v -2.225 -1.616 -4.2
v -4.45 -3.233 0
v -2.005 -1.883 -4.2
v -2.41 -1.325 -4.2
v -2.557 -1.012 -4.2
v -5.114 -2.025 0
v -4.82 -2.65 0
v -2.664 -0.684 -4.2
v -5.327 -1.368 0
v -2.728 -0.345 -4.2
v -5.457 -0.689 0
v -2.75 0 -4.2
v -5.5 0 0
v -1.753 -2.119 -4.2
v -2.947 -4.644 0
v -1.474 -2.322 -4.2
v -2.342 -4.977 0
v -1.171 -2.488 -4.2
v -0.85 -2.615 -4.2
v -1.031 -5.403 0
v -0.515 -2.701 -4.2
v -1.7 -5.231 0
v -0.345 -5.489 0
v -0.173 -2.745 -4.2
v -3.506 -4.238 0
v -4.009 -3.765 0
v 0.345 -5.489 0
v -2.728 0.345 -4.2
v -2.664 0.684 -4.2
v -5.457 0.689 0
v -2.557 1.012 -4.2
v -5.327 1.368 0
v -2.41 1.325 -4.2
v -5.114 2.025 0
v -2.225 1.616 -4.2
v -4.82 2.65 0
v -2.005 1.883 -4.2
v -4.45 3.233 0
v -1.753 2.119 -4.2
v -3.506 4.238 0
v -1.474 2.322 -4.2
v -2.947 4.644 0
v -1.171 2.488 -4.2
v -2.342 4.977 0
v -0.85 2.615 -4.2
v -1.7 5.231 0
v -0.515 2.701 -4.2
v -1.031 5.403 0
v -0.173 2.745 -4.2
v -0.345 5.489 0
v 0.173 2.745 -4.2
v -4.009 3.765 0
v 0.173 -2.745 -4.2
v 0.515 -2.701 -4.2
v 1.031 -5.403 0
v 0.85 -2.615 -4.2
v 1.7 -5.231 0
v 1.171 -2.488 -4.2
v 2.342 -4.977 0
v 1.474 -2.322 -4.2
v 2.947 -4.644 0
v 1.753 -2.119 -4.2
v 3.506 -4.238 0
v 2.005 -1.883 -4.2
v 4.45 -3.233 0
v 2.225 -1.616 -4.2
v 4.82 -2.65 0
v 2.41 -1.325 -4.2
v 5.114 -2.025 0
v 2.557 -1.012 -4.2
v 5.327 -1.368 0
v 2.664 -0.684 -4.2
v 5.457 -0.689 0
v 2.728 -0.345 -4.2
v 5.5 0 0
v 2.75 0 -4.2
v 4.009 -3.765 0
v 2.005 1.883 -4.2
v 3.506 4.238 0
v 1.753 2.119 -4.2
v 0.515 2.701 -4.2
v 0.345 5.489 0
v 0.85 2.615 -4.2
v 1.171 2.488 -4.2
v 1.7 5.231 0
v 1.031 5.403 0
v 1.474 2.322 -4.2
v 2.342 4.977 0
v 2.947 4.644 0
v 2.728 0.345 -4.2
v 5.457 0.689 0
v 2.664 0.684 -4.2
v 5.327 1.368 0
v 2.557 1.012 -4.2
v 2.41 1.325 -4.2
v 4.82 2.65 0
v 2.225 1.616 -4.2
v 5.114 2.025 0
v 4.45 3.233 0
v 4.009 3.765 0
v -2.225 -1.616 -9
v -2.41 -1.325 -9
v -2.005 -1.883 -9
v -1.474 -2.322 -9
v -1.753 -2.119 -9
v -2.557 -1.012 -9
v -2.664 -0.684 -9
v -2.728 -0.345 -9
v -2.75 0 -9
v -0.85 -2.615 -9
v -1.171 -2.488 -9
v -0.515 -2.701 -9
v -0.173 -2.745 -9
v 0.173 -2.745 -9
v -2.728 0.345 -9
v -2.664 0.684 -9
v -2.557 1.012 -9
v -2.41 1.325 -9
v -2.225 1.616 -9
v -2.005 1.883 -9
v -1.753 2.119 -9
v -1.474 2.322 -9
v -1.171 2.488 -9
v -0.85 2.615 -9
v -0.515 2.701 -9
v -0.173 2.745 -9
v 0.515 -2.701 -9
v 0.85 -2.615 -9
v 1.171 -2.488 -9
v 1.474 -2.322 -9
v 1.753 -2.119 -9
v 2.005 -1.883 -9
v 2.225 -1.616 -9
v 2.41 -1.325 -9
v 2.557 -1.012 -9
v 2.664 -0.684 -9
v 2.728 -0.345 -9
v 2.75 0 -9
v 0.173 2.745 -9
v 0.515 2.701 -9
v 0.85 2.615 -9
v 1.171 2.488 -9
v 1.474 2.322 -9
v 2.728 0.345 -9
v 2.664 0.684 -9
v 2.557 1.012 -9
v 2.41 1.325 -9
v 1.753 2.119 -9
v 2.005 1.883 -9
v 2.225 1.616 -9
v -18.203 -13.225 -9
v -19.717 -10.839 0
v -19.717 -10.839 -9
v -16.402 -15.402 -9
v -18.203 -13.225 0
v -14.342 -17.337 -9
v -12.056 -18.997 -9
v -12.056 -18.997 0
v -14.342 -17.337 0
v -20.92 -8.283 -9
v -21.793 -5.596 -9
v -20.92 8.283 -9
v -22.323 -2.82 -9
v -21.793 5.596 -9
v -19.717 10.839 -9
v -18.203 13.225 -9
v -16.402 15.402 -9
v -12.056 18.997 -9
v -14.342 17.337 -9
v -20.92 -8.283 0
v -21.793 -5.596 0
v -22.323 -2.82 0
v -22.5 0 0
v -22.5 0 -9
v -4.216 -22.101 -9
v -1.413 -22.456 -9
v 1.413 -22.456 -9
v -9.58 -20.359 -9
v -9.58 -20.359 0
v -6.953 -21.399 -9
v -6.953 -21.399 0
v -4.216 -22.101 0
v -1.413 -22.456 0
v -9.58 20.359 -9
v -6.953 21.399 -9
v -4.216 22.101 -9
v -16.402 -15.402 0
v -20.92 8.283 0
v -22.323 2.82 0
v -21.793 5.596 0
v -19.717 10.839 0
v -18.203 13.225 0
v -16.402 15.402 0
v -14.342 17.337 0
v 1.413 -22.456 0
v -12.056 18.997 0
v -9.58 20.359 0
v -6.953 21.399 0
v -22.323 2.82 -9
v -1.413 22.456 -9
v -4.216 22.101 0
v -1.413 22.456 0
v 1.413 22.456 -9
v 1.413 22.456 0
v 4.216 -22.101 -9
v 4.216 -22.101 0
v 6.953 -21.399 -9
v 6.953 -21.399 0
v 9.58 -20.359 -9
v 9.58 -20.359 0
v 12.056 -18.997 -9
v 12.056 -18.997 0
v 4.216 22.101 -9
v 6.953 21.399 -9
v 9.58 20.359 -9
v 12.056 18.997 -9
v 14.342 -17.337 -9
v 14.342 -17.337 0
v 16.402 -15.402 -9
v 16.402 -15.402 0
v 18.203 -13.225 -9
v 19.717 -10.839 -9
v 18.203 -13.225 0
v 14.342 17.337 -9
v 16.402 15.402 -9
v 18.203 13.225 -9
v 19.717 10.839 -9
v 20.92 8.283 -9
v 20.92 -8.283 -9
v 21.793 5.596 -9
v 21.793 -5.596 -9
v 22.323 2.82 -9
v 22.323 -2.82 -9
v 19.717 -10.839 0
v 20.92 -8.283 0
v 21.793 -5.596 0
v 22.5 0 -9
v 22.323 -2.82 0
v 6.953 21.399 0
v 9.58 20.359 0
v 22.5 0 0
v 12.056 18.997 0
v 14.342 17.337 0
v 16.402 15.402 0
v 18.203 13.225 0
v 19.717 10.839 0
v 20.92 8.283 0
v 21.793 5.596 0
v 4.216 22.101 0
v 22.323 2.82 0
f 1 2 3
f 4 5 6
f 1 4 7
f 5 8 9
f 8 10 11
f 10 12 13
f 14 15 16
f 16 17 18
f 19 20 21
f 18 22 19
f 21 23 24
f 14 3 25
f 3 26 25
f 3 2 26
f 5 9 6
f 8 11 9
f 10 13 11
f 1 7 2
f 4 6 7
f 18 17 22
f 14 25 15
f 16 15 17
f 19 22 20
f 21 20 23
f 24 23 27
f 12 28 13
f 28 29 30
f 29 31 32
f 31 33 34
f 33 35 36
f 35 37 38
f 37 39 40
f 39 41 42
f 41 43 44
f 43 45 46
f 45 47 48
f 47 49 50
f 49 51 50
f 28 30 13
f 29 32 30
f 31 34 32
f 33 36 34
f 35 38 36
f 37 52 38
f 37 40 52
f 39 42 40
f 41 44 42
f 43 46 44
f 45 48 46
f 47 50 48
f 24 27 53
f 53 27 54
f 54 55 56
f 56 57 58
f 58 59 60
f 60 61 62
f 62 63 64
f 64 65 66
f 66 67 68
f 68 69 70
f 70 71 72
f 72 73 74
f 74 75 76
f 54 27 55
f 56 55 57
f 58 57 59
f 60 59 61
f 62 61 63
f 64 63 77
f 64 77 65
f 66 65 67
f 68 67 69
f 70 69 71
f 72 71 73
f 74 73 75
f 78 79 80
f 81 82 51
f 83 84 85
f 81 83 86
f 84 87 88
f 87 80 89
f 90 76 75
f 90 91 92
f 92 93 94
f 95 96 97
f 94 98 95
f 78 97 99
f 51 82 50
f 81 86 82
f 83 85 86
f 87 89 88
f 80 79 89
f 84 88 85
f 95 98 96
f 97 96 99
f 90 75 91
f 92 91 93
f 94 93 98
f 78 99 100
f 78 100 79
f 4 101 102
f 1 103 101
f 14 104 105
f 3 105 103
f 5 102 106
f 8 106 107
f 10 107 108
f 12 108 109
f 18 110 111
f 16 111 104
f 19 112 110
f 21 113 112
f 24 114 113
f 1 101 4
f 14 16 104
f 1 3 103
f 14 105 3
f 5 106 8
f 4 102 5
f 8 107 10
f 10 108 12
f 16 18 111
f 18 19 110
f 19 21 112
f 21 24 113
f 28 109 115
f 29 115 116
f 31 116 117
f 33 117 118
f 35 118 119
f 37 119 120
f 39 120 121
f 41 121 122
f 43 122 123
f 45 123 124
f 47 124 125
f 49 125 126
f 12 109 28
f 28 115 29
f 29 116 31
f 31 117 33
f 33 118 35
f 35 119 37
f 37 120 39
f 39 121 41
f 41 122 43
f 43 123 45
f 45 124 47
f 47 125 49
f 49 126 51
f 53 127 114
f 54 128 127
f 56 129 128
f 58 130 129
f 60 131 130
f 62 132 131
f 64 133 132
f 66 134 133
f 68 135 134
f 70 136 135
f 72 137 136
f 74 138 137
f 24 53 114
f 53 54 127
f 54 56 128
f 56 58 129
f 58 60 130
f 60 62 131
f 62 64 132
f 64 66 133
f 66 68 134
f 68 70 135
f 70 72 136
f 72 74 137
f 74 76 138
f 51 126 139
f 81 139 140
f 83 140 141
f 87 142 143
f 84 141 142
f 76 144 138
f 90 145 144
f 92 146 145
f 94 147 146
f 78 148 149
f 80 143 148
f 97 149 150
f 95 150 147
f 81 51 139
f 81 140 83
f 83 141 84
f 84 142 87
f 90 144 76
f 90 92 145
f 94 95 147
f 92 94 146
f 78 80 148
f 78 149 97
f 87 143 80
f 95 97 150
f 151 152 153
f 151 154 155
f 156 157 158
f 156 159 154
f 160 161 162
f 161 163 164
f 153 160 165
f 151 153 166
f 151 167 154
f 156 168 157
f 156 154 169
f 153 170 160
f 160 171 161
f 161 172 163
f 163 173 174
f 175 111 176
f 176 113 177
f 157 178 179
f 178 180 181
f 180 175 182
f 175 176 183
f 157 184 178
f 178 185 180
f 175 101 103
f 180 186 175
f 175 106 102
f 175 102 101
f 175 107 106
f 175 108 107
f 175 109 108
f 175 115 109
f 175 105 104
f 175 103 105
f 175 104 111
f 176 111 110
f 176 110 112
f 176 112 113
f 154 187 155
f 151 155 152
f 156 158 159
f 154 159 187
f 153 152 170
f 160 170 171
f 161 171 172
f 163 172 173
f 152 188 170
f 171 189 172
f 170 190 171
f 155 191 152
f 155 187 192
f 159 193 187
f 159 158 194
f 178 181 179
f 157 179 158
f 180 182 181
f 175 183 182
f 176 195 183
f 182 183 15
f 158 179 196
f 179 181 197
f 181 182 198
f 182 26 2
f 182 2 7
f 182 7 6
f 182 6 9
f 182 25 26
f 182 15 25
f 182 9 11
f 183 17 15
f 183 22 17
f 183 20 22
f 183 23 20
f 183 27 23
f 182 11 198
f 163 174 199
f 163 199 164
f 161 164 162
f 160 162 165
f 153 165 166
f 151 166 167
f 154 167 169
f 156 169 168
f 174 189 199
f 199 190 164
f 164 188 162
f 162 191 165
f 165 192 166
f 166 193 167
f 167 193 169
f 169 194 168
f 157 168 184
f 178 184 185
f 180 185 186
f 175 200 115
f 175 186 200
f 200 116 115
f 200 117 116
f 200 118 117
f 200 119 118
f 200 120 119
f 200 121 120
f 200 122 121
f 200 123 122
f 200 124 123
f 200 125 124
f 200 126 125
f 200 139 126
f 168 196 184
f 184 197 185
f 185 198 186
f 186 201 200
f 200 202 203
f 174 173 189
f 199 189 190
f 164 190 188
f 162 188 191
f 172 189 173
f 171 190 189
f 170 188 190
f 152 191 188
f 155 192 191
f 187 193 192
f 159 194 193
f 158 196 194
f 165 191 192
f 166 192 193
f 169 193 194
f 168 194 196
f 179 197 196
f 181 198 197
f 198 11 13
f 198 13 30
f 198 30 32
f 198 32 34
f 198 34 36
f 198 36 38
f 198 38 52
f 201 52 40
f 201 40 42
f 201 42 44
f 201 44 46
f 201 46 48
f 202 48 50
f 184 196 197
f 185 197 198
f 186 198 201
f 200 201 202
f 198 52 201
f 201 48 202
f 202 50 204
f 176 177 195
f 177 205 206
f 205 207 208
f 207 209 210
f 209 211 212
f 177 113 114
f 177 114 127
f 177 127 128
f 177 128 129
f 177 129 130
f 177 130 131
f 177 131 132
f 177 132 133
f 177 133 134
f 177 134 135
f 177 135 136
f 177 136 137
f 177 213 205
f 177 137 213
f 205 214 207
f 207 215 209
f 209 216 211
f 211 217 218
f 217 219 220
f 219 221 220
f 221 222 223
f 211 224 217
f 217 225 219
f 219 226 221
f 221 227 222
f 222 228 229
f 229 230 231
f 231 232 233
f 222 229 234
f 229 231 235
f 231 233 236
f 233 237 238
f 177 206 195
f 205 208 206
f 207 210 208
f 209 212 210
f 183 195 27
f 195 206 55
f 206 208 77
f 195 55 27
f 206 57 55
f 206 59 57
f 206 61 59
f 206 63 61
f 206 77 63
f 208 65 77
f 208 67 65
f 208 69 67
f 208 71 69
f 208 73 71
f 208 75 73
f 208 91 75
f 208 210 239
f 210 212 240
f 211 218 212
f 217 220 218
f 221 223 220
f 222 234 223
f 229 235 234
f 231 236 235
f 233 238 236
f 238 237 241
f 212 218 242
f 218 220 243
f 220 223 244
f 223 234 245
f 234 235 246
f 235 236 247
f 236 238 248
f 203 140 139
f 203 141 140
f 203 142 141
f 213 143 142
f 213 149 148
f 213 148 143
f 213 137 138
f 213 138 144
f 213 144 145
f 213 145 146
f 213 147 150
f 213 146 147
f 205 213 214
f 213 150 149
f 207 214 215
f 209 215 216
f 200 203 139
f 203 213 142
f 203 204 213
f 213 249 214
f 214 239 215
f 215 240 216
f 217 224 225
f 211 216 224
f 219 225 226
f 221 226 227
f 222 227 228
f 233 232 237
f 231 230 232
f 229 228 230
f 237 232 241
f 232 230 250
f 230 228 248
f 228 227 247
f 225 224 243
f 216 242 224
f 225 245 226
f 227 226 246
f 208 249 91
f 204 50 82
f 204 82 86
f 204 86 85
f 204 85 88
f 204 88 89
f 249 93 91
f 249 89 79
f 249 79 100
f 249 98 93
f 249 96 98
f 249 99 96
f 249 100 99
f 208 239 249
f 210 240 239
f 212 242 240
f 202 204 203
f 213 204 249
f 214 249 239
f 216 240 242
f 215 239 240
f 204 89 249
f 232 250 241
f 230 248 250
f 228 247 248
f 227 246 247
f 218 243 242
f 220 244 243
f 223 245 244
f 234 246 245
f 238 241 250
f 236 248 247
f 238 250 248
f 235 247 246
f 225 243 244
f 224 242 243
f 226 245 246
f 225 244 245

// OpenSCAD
$fn = 50;

difference() {
	union() {
		translate(v = [0, 0, -9.0]) {
			cylinder(h = 9, r = 22.5);
		}
	}
	union() {
		translate(v = [0, 0, 0]) {
			rotate(a = [0, 0, 0]) {
				difference() {
					union() {
						translate(v = [0, 0, -12.0]) {
							cylinder(h = 12, r = 2.25);
						}
						translate(v = [0, 0, -4.2]) {
							cylinder(h = 4.2, r1 = 2.75, r2 = 5.5);
						}
						translate(v = [0, 0, -12.0]) {
							cylinder(h = 12, r = 2.75);
						}
						translate(v = [0, 0, -12.0]) {
							cylinder(h = 12, r = 2.25);
						}
					}
					union();
				}
			}
		}
	}
}
